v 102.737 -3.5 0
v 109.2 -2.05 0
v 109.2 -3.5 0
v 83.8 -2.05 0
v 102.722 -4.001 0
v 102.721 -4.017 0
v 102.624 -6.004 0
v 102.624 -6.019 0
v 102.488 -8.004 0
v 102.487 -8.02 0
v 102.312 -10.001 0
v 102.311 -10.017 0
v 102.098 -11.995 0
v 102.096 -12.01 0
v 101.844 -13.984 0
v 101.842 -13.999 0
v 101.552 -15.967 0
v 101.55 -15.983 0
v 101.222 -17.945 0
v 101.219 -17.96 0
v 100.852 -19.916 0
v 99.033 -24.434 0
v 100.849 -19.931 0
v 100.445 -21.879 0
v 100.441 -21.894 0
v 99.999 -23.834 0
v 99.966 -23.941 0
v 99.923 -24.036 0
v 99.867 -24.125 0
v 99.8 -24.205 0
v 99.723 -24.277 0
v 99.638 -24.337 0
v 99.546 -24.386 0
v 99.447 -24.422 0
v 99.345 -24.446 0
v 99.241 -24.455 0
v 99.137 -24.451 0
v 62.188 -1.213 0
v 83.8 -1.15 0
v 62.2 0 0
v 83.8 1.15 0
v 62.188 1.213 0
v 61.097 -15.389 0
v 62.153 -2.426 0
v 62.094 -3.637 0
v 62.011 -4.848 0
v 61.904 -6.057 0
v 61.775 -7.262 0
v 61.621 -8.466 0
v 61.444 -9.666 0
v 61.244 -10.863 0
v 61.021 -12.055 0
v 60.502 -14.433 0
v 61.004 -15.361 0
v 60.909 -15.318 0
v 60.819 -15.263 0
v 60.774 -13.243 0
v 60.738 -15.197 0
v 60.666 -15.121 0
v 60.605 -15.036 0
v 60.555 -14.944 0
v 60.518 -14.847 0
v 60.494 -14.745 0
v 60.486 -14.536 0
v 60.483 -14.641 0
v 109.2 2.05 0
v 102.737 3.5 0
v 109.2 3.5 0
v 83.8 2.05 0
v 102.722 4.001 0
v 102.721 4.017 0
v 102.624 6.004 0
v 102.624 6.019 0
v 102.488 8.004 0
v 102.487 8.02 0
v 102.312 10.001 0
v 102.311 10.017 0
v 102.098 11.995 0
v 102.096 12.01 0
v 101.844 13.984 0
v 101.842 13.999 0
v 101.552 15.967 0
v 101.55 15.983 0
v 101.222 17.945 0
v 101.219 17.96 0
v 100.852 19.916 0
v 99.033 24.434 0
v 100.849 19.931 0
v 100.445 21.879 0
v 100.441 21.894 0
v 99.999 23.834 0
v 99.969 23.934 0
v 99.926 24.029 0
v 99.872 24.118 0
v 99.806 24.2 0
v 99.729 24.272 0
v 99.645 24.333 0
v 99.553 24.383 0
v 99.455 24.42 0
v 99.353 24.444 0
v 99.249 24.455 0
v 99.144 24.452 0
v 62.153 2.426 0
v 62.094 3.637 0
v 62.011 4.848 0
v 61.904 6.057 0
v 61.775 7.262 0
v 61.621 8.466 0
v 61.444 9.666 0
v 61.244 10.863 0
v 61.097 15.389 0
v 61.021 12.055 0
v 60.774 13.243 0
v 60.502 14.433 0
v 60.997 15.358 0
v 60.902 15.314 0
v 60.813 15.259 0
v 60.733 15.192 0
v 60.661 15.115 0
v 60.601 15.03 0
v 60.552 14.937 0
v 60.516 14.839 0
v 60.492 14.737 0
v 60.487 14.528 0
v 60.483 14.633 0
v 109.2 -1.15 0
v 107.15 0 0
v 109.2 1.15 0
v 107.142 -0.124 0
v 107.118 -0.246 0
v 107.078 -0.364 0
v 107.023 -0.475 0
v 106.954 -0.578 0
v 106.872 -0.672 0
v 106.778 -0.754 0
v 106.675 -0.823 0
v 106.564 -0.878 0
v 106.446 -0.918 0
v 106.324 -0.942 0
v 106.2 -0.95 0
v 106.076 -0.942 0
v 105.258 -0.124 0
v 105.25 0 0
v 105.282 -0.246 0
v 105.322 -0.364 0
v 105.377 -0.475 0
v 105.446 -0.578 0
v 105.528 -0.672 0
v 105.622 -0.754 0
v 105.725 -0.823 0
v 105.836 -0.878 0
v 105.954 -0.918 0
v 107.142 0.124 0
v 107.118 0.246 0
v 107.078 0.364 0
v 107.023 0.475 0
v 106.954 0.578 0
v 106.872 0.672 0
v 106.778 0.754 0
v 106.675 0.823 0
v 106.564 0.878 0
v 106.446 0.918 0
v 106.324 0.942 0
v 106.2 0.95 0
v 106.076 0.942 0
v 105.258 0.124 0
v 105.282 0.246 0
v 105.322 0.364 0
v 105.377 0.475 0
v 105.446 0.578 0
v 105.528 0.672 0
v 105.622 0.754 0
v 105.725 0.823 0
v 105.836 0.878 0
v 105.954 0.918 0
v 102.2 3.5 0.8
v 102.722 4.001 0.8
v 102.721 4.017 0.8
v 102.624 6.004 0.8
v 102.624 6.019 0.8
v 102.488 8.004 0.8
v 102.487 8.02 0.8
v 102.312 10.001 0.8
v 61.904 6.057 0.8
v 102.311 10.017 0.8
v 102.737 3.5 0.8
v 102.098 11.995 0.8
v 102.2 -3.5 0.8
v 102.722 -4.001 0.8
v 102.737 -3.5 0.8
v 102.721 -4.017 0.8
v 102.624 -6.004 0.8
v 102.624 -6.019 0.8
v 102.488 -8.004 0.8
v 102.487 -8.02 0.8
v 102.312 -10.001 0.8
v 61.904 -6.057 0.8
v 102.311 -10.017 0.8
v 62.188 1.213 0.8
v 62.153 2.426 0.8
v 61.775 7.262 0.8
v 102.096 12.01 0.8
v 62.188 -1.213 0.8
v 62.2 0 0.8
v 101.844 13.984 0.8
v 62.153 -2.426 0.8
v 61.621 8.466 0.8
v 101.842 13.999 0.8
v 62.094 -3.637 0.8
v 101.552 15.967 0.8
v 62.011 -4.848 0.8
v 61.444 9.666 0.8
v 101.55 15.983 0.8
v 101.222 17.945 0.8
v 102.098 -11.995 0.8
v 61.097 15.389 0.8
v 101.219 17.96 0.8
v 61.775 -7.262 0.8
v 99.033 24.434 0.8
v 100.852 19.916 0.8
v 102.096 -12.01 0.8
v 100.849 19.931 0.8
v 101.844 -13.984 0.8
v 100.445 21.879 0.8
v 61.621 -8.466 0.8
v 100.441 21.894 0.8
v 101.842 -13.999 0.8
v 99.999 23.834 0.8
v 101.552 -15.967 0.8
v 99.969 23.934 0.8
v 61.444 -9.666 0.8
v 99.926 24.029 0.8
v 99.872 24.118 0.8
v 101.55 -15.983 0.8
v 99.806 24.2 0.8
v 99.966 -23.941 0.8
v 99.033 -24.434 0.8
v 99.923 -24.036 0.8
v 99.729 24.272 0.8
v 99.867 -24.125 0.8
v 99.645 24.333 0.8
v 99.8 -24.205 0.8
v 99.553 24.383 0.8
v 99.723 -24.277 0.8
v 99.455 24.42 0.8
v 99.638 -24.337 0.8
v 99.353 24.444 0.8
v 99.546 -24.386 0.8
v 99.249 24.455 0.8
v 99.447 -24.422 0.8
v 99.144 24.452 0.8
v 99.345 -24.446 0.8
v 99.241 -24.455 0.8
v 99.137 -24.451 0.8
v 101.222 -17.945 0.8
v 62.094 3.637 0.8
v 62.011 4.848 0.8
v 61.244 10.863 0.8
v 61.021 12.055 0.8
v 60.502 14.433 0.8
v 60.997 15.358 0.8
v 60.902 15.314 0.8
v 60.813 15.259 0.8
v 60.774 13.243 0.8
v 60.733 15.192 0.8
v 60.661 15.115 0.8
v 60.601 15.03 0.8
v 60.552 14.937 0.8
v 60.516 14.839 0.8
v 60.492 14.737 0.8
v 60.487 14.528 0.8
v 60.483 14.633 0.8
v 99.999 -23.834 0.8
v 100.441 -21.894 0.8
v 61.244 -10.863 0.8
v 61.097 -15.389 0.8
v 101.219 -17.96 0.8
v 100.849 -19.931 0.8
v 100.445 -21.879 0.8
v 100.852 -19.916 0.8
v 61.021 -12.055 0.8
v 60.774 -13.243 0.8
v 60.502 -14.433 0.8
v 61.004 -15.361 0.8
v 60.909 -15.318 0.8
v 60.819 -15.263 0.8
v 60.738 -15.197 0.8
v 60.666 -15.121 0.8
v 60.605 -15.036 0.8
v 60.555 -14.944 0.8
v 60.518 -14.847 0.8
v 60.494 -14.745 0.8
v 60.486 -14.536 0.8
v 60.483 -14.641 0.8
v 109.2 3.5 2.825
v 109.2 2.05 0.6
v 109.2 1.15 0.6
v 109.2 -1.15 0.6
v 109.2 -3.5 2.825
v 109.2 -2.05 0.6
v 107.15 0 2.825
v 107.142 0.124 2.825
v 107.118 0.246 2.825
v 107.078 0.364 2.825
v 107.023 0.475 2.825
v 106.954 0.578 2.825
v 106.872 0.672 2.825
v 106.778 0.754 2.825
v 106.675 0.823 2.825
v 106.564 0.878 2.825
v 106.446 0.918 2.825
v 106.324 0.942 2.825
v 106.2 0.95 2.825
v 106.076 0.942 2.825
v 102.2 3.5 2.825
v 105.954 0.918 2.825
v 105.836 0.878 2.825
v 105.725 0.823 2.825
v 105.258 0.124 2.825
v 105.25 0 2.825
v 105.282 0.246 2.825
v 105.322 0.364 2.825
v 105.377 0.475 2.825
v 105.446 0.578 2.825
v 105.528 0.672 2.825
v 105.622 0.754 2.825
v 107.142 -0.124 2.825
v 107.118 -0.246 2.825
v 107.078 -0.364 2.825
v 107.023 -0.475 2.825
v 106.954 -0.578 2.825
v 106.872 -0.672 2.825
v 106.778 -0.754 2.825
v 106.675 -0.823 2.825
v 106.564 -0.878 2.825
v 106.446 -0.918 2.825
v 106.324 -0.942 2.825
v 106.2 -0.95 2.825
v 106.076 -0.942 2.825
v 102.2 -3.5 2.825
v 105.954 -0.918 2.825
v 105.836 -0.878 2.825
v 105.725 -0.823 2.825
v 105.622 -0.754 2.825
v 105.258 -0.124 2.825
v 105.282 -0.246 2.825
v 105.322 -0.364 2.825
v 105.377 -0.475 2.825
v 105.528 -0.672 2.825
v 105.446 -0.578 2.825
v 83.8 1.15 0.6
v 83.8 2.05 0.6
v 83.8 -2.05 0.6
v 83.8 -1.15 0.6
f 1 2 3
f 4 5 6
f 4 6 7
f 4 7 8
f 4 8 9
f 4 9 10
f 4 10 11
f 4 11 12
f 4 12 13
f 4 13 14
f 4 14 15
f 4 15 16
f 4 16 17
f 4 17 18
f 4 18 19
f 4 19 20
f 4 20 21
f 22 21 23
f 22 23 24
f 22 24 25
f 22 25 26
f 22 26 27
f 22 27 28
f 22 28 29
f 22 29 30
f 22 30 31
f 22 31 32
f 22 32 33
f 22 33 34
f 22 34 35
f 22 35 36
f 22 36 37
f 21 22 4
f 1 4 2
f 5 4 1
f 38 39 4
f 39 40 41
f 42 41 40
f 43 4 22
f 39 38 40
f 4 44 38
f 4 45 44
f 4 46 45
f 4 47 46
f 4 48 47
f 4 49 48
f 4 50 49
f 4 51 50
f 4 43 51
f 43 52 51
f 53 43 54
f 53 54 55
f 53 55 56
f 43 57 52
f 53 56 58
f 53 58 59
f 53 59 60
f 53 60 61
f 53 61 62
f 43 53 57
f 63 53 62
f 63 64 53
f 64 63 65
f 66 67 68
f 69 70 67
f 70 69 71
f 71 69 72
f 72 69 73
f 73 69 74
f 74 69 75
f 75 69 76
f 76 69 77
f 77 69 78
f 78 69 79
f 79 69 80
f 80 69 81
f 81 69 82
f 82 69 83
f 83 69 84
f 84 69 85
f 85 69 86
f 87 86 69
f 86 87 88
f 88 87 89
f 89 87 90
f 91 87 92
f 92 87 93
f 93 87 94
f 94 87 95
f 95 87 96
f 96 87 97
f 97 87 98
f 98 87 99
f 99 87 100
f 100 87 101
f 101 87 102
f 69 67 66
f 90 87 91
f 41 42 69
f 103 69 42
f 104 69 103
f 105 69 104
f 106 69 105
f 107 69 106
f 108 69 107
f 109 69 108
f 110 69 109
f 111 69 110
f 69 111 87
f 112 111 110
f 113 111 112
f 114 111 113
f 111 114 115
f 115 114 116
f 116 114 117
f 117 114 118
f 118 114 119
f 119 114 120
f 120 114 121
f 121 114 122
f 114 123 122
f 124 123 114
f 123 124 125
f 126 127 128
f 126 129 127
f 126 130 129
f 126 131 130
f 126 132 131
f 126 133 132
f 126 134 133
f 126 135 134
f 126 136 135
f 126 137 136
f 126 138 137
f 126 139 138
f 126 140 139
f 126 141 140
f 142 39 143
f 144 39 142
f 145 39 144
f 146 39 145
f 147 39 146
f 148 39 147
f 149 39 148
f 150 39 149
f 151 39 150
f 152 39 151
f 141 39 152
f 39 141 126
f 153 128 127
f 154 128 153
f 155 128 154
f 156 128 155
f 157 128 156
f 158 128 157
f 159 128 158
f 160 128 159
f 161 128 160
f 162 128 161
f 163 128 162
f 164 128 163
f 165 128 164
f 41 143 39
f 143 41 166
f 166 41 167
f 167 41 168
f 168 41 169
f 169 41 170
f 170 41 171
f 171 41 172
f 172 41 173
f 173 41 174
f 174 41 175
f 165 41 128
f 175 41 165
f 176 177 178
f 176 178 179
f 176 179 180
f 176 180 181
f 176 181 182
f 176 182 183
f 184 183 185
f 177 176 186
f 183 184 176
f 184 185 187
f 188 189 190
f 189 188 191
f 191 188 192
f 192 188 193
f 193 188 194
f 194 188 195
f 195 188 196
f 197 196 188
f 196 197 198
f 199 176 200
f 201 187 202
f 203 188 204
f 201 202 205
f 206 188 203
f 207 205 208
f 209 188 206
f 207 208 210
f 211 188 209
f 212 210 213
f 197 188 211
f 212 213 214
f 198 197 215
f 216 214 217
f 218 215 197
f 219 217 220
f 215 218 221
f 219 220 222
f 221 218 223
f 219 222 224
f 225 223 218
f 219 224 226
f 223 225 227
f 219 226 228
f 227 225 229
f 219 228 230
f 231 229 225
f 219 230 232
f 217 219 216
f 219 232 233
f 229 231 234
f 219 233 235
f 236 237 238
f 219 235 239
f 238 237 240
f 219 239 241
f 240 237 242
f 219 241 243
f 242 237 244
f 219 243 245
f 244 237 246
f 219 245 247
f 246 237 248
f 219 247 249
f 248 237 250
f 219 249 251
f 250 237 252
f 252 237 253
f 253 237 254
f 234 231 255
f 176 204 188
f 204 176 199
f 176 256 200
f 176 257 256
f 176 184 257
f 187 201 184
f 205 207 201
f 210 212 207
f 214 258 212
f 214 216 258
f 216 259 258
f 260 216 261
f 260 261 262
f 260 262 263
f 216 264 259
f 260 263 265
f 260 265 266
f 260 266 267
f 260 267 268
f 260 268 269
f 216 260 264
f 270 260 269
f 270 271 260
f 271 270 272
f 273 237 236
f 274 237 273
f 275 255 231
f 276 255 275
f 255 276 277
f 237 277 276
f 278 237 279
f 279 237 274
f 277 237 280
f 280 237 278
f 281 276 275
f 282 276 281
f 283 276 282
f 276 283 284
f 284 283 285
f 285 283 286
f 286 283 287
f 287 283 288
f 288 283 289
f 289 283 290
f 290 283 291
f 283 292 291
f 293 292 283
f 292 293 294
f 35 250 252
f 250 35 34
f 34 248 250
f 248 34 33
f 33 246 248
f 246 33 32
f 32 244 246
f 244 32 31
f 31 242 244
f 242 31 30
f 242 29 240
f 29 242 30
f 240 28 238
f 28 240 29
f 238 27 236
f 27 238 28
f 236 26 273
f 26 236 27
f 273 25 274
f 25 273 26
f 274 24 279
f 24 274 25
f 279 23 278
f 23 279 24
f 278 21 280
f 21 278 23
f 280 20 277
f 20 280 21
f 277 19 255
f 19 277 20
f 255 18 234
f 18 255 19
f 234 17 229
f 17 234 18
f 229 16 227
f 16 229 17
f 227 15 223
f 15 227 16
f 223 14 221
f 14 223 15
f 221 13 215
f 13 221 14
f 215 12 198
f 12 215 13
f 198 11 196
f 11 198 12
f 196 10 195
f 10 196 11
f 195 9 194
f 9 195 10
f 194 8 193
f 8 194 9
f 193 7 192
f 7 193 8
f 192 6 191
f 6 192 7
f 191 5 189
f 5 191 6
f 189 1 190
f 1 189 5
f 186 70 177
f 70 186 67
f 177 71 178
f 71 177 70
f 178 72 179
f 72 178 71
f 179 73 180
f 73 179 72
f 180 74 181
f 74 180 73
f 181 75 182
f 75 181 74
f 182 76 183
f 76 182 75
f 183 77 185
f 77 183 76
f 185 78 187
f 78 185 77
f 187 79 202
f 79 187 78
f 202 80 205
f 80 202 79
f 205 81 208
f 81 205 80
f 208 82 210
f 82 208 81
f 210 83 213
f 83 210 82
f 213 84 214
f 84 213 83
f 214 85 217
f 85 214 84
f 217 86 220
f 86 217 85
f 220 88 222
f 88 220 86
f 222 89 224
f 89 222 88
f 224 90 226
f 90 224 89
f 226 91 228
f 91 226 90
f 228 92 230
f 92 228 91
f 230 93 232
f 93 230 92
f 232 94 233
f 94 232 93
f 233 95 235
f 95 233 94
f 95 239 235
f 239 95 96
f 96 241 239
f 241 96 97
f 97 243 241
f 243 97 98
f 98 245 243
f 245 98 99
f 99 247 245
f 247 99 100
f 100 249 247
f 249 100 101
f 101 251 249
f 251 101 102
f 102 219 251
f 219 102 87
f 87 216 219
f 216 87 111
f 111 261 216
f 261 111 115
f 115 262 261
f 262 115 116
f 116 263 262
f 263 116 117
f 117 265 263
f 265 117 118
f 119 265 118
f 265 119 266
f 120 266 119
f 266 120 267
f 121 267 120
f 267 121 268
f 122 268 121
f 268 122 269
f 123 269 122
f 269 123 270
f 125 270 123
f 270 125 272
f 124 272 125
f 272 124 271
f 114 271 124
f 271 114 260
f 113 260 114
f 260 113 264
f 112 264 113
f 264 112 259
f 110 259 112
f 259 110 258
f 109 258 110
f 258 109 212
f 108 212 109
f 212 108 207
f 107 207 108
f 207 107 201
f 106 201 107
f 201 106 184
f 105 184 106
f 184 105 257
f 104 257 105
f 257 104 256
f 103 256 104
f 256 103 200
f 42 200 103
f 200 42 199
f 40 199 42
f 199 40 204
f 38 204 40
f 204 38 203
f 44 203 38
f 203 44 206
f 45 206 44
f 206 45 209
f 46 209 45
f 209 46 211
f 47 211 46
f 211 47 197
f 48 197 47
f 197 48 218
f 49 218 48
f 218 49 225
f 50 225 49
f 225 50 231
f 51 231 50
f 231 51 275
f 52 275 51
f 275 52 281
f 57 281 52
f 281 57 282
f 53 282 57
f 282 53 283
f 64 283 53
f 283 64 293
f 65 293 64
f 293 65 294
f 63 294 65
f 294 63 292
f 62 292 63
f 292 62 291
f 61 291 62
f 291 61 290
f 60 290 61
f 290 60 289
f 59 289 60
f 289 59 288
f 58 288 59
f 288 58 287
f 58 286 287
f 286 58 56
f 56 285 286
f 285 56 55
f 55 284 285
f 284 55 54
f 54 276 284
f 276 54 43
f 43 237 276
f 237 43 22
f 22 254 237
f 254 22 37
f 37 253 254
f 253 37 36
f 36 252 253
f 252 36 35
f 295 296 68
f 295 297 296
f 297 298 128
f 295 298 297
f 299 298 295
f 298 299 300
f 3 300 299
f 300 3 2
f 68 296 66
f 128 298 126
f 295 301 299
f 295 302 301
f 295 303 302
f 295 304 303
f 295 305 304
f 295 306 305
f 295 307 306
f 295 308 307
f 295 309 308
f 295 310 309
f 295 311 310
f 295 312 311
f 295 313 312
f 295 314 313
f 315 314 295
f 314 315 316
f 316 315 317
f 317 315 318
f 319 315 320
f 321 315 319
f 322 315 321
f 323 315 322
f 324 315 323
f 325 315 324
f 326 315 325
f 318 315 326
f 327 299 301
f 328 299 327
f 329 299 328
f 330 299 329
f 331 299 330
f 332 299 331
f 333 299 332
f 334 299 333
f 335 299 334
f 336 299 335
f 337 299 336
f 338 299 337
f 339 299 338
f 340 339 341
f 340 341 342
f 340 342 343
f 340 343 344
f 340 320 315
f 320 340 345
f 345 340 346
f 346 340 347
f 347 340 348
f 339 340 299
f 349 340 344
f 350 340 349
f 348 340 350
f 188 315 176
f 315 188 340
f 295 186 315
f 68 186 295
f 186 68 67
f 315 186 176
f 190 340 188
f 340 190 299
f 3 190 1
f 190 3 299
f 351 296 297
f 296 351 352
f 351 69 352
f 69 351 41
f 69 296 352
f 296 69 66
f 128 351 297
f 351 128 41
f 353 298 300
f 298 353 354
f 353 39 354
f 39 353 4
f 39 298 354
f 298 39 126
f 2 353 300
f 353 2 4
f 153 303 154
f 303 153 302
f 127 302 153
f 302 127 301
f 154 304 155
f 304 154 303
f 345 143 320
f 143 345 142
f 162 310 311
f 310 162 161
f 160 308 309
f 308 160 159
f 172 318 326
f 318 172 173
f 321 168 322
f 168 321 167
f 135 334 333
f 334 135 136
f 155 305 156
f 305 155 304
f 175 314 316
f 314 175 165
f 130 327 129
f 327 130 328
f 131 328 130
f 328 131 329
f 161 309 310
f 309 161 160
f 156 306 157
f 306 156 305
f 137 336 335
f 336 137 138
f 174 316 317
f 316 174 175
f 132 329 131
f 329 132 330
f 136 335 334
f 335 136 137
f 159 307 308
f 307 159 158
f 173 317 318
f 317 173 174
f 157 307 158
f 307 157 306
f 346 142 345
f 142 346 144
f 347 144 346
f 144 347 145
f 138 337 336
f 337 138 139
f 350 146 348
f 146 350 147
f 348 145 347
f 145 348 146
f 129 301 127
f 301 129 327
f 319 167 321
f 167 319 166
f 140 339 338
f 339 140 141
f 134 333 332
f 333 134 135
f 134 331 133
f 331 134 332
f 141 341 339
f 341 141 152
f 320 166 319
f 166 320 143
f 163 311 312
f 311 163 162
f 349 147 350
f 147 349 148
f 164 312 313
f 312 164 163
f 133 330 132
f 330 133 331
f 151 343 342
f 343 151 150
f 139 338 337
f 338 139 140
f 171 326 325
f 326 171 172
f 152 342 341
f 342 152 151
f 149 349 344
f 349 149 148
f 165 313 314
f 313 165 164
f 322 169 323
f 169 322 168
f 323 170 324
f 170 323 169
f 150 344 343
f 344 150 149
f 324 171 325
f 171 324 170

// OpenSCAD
// file: parameters.scad
// =============================================================================
// Gen-CB — nightly 2026-10-13 (physics_scorer, honest magpylib watts)
// Wire-saver stator for the Gen-CA rotors: only 4.05 mm of copper (9 layers), so the magnet faces are 6.65 mm apart and peak Bz at the copper reaches ≈0.70 T. It needs ≈300 m of wire (≈80 m less than Gen-CA, ≈75 m less than Gen-BX) and still out-scores the Gen-BX champion; it shares every rotor part, the steel, the frame rods and the bearing bridges with Gen-CA, so the two stators swap on the same machine.
// Clocking 0 deg (magnets N facing S) + D-flat keyed bore + index notch + flip-symmetric hole map.
// Windable 2-piece bobbin; turns = physics_scorer turns_fit; copper only between flanges.
// Steel back-iron: 2× Ø194 × 4.76 mm (3/16") mild-steel discs (steel_backiron_disc.dxf); magnets sit ON the steel
// (through-pockets) -> score with --back-iron. Night 2026-10-13.
// =============================================================================
topology            = "dual_rotor";

// --- Wire / winding (physics_scorer winding-fit) -------------------------------
wire_awg            = 26;
wire_od             = 0.45;     // insulated OD mm (bare 0.405)
fill_realistic      = 0.65;     // insulated-wire area / window (DENSE layered wind with a jig; scorer cap 0.65)
turns               = 292;       // = physics_scorer turns_fit (do NOT raise)
coil_former_type    = "bobbin";
coil_core_inset     = 17.70;     // radial copper build: hub = copper boundary inset by this
wind_build_axial    = 0.0;      // nothing proud of the flanges
wind_build_radial   = 0.0;

// --- Bobbin (base + lid) ---------------------------------------------------------
coil_id_r           = 63.00;    // copper boundary sector
coil_od_r           = 102.00;
span_deg            = 26.82;    // = pitch - 2*asin((wall+0.85)/coil_id_r) -> >=1.2 mm stator web
former_web          = 4.05;     // copper height between flanges (TALL copper: steel keeps Bz up)
flange_t            = 0.80;     // >= 0.8 mm FDM wall rule (tall winds push on the flanges)
wall                = 0.80;     // flange lip beyond copper
former_bare_h       = former_web + 2 * flange_t;
coil_envelope_h     = former_bare_h + 2 * wind_build_axial;
tab_w               = 7.0;
tab_len             = 7.0;
tab_h               = former_bare_h / 2;
pin_d               = 1.9;      // 1.75 mm filament locating pin
coil_mount_r        = coil_od_r + 0.2 + 4.0;
lead_y              = 1.6;
lead_slot_w         = 0.9;
lead_groove_d       = 0.6;

// --- Gap -------------------------------------------------------------------------
run_clear           = 0.50;     // rotor face -> flange
gap_spacer_h        = run_clear + wind_build_axial;
m2m                 = coil_envelope_h + 2 * run_clear;   // rotor face to rotor face (= gap_sleeve length)

// --- Stator ----------------------------------------------------------------------
coil_stations       = 12;
bay_clear           = 0.35;     // 0.35 mm: bobbin BASES print IN PLACE inside the stator bays (print-in-place gap), then pop out
stator_thick        = former_bare_h;                        // bobbins flush both faces
stator_od           = 225.0;
shaft_clear_stator  = 14.0;     // stator is static; gap sleeve OD 12 spins inside
stator_ir           = 57.85;    // ANNULAR stator: open centre (nested one-plate pack); inner rim 4.0 mm

// --- Rotor(s) --------------------------------------------------------------------
magnet_Br           = 1.43;     // N52
magnet_d_large      = 20.0;
magnet_h_large      = 5.0;      // one O20x5 per pocket
magnet_h_small      = 5.0;      // unused: no O5 pockets in this kit
halbach_magnetisation = "none";  // NO O5 assist magnets in this kit (scan: they lower the 4-pole score)
rotor_b_same_axis   = true;     // same-index magnets share one axis: N faces S across the gap
large_pocket_d      = 20.3;
small_pocket_d      = 5.3;
pocket_h            = 5.00;     // THROUGH the carrier: magnet back face sits on the steel disc (FLUSH seat: carrier = magnet height, magnet face level with the rotor face)
large_n             = 8;
R_large             = 84.0;
small_r_list        = [];       // no O5 pockets
carrier_od          = 194.0;
ring_ir             = 70.85;    // RING rotor: PLA magnet ring r ring_ir..carrier_od/2 (steel disc = structural rotor)
hub_flange_od       = 74.0;     // separate rotor_hub flange (inside the ring, flush with the ring face)
csk_d               = 6.6;      // M3 countersunk head pocket (ISO 10642 head 6.0 nominal) on the stator face
csk_depth           = 1.55;     // = (csk_d - m3_clear) / 2: 90 deg cone; head sits 0.3 mm below the face
n_seg               = 8;        // magnet-carrier ARCS per rotor (segmented carrier)
seg_deg             = 360 / n_seg;
seg_start           = -22.5;   // arc edge angle (between pocket 0 and its clamp bolt)
seg_kerf_deg        = 0.4;      // gap between neighbouring arcs on the steel
carrier_thick       = pocket_h;
hub_h               = 12.0;     // > steel_t + insert: radial set-screw clears the steel
hub_od              = 24.0;     // slim hub so the M4 brace rods fit at R~18 inside the coil ring
hub_insert_d        = 4.0;      // M3 heat-set insert, radial, bears on the D-flat
rotor_b_offset_deg  = 0.0;      // CLOCKING: magnets directly opposite
shaft_key           = "dflat";
dflat_depth         = 0.5;      // 8 mm shaft with 0.5 mm flat (7.5 across flat)
index_notch_d       = 3.0;

// --- Steel back-iron (buyable laser-cut) -------------------------------------------
steel_t             = 4.76;      // mild steel thickness (image method ignores it; sized from steel_flux.py so the return path stays well below saturation)
steel_center_hole   = 26.0;     // slips over the rotor hub (OD 24)
steel_od            = carrier_od;   // steel disc OD = rotor carrier OD

// --- Modular MAX interface ----------------------------------------------------------
shaft_bore          = 8.35;
dflat_x             = 4.0 - dflat_depth + (shaft_bore - 8.0) / 2;
bearing_d           = 21.85;
bearing_h           = 7.2;
m3_clear            = 3.5;
bolt_r_inner        = 30.0;     // M3 steel-disc clamp bolts (inside the magnet ring)
bolt_n_inner        = 4;
bolt_inner_angles   = [0, 90, 180, 270];
bolt_r_outer        = 84.0;     // second M3 steel-disc clamp ring
bolt_outer_angles   = [22.5, 67.5, 112.5, 157.5, 202.5, 247.5, 292.5, 337.5];
flange_bolt_r       = 107.5;     // frame rods: OUTSIDE the rotor OD (rotors spin inside them)
flange_bolt_n       = 4;
flange_bolt_offset  = 45.00;    // between coil stations -> never cuts a lead groove/tab
brace_r             = 18.0;
brace_d             = 4.3;      // temporary M4 jack rods (assembly only)
brace_n             = 4;
brace_angles        = [45, 135, 225, 315];          // flip-symmetric

spacer_pad_od       = 14.0;
spacer_pad_id       = m3_clear;
endbell_od          = 225.0;
endbell_thick       = 8.0;
endbell_shaft_clear = 10.0;
collar_h            = 10.0;
standoff_od         = 9.0;
frame_standoff_h    = run_clear + carrier_thick + hub_h + collar_h + 2.0;
sleeve_od           = 12.0;
plate_max_mm        = 410;

$fn = 64;
// main file
// Gen-CB — bobbin LID (top flange + locating tab). Print x12, flange face DOWN on the bed.
// CA-glue onto the hub top BEFORE winding. Tab = lap joint into the stator tab pocket; 1.75 mm filament
// pin through pin hole + stator ledge, trim flush. Lead slots carry both leads flush.
include <parameters.scad>;
$fn = 48;
module sector_2d(r_in, r_out, ang) {
    polygon([
        for (a = [-ang/2 : ang/24 : ang/2]) [r_in*cos(a), r_in*sin(a)],
        for (a = [ang/2 : -ang/24 : -ang/2]) [r_out*cos(a), r_out*sin(a)]
    ]);
}
module footprint_2d() { offset(r=wall) sector_2d(coil_id_r, coil_od_r, span_deg); }
module hub_2d()       { offset(delta=-coil_core_inset) sector_2d(coil_id_r, coil_od_r, span_deg); }

difference() {
    union() {
        linear_extrude(flange_t) footprint_2d();
        translate([coil_od_r + 0.2, -tab_w/2, 0]) cube([tab_len, tab_w, tab_h]);
    }
    translate([coil_mount_r, 0, -0.1]) cylinder(d=pin_d, h=tab_h + 1);
    for (y = [lead_y, -lead_y])
        translate([coil_od_r - coil_core_inset - 0.5, y - lead_slot_w/2, -0.1])
            cube([coil_core_inset + tab_len + 2, lead_slot_w, lead_groove_d + 0.1]);
}
